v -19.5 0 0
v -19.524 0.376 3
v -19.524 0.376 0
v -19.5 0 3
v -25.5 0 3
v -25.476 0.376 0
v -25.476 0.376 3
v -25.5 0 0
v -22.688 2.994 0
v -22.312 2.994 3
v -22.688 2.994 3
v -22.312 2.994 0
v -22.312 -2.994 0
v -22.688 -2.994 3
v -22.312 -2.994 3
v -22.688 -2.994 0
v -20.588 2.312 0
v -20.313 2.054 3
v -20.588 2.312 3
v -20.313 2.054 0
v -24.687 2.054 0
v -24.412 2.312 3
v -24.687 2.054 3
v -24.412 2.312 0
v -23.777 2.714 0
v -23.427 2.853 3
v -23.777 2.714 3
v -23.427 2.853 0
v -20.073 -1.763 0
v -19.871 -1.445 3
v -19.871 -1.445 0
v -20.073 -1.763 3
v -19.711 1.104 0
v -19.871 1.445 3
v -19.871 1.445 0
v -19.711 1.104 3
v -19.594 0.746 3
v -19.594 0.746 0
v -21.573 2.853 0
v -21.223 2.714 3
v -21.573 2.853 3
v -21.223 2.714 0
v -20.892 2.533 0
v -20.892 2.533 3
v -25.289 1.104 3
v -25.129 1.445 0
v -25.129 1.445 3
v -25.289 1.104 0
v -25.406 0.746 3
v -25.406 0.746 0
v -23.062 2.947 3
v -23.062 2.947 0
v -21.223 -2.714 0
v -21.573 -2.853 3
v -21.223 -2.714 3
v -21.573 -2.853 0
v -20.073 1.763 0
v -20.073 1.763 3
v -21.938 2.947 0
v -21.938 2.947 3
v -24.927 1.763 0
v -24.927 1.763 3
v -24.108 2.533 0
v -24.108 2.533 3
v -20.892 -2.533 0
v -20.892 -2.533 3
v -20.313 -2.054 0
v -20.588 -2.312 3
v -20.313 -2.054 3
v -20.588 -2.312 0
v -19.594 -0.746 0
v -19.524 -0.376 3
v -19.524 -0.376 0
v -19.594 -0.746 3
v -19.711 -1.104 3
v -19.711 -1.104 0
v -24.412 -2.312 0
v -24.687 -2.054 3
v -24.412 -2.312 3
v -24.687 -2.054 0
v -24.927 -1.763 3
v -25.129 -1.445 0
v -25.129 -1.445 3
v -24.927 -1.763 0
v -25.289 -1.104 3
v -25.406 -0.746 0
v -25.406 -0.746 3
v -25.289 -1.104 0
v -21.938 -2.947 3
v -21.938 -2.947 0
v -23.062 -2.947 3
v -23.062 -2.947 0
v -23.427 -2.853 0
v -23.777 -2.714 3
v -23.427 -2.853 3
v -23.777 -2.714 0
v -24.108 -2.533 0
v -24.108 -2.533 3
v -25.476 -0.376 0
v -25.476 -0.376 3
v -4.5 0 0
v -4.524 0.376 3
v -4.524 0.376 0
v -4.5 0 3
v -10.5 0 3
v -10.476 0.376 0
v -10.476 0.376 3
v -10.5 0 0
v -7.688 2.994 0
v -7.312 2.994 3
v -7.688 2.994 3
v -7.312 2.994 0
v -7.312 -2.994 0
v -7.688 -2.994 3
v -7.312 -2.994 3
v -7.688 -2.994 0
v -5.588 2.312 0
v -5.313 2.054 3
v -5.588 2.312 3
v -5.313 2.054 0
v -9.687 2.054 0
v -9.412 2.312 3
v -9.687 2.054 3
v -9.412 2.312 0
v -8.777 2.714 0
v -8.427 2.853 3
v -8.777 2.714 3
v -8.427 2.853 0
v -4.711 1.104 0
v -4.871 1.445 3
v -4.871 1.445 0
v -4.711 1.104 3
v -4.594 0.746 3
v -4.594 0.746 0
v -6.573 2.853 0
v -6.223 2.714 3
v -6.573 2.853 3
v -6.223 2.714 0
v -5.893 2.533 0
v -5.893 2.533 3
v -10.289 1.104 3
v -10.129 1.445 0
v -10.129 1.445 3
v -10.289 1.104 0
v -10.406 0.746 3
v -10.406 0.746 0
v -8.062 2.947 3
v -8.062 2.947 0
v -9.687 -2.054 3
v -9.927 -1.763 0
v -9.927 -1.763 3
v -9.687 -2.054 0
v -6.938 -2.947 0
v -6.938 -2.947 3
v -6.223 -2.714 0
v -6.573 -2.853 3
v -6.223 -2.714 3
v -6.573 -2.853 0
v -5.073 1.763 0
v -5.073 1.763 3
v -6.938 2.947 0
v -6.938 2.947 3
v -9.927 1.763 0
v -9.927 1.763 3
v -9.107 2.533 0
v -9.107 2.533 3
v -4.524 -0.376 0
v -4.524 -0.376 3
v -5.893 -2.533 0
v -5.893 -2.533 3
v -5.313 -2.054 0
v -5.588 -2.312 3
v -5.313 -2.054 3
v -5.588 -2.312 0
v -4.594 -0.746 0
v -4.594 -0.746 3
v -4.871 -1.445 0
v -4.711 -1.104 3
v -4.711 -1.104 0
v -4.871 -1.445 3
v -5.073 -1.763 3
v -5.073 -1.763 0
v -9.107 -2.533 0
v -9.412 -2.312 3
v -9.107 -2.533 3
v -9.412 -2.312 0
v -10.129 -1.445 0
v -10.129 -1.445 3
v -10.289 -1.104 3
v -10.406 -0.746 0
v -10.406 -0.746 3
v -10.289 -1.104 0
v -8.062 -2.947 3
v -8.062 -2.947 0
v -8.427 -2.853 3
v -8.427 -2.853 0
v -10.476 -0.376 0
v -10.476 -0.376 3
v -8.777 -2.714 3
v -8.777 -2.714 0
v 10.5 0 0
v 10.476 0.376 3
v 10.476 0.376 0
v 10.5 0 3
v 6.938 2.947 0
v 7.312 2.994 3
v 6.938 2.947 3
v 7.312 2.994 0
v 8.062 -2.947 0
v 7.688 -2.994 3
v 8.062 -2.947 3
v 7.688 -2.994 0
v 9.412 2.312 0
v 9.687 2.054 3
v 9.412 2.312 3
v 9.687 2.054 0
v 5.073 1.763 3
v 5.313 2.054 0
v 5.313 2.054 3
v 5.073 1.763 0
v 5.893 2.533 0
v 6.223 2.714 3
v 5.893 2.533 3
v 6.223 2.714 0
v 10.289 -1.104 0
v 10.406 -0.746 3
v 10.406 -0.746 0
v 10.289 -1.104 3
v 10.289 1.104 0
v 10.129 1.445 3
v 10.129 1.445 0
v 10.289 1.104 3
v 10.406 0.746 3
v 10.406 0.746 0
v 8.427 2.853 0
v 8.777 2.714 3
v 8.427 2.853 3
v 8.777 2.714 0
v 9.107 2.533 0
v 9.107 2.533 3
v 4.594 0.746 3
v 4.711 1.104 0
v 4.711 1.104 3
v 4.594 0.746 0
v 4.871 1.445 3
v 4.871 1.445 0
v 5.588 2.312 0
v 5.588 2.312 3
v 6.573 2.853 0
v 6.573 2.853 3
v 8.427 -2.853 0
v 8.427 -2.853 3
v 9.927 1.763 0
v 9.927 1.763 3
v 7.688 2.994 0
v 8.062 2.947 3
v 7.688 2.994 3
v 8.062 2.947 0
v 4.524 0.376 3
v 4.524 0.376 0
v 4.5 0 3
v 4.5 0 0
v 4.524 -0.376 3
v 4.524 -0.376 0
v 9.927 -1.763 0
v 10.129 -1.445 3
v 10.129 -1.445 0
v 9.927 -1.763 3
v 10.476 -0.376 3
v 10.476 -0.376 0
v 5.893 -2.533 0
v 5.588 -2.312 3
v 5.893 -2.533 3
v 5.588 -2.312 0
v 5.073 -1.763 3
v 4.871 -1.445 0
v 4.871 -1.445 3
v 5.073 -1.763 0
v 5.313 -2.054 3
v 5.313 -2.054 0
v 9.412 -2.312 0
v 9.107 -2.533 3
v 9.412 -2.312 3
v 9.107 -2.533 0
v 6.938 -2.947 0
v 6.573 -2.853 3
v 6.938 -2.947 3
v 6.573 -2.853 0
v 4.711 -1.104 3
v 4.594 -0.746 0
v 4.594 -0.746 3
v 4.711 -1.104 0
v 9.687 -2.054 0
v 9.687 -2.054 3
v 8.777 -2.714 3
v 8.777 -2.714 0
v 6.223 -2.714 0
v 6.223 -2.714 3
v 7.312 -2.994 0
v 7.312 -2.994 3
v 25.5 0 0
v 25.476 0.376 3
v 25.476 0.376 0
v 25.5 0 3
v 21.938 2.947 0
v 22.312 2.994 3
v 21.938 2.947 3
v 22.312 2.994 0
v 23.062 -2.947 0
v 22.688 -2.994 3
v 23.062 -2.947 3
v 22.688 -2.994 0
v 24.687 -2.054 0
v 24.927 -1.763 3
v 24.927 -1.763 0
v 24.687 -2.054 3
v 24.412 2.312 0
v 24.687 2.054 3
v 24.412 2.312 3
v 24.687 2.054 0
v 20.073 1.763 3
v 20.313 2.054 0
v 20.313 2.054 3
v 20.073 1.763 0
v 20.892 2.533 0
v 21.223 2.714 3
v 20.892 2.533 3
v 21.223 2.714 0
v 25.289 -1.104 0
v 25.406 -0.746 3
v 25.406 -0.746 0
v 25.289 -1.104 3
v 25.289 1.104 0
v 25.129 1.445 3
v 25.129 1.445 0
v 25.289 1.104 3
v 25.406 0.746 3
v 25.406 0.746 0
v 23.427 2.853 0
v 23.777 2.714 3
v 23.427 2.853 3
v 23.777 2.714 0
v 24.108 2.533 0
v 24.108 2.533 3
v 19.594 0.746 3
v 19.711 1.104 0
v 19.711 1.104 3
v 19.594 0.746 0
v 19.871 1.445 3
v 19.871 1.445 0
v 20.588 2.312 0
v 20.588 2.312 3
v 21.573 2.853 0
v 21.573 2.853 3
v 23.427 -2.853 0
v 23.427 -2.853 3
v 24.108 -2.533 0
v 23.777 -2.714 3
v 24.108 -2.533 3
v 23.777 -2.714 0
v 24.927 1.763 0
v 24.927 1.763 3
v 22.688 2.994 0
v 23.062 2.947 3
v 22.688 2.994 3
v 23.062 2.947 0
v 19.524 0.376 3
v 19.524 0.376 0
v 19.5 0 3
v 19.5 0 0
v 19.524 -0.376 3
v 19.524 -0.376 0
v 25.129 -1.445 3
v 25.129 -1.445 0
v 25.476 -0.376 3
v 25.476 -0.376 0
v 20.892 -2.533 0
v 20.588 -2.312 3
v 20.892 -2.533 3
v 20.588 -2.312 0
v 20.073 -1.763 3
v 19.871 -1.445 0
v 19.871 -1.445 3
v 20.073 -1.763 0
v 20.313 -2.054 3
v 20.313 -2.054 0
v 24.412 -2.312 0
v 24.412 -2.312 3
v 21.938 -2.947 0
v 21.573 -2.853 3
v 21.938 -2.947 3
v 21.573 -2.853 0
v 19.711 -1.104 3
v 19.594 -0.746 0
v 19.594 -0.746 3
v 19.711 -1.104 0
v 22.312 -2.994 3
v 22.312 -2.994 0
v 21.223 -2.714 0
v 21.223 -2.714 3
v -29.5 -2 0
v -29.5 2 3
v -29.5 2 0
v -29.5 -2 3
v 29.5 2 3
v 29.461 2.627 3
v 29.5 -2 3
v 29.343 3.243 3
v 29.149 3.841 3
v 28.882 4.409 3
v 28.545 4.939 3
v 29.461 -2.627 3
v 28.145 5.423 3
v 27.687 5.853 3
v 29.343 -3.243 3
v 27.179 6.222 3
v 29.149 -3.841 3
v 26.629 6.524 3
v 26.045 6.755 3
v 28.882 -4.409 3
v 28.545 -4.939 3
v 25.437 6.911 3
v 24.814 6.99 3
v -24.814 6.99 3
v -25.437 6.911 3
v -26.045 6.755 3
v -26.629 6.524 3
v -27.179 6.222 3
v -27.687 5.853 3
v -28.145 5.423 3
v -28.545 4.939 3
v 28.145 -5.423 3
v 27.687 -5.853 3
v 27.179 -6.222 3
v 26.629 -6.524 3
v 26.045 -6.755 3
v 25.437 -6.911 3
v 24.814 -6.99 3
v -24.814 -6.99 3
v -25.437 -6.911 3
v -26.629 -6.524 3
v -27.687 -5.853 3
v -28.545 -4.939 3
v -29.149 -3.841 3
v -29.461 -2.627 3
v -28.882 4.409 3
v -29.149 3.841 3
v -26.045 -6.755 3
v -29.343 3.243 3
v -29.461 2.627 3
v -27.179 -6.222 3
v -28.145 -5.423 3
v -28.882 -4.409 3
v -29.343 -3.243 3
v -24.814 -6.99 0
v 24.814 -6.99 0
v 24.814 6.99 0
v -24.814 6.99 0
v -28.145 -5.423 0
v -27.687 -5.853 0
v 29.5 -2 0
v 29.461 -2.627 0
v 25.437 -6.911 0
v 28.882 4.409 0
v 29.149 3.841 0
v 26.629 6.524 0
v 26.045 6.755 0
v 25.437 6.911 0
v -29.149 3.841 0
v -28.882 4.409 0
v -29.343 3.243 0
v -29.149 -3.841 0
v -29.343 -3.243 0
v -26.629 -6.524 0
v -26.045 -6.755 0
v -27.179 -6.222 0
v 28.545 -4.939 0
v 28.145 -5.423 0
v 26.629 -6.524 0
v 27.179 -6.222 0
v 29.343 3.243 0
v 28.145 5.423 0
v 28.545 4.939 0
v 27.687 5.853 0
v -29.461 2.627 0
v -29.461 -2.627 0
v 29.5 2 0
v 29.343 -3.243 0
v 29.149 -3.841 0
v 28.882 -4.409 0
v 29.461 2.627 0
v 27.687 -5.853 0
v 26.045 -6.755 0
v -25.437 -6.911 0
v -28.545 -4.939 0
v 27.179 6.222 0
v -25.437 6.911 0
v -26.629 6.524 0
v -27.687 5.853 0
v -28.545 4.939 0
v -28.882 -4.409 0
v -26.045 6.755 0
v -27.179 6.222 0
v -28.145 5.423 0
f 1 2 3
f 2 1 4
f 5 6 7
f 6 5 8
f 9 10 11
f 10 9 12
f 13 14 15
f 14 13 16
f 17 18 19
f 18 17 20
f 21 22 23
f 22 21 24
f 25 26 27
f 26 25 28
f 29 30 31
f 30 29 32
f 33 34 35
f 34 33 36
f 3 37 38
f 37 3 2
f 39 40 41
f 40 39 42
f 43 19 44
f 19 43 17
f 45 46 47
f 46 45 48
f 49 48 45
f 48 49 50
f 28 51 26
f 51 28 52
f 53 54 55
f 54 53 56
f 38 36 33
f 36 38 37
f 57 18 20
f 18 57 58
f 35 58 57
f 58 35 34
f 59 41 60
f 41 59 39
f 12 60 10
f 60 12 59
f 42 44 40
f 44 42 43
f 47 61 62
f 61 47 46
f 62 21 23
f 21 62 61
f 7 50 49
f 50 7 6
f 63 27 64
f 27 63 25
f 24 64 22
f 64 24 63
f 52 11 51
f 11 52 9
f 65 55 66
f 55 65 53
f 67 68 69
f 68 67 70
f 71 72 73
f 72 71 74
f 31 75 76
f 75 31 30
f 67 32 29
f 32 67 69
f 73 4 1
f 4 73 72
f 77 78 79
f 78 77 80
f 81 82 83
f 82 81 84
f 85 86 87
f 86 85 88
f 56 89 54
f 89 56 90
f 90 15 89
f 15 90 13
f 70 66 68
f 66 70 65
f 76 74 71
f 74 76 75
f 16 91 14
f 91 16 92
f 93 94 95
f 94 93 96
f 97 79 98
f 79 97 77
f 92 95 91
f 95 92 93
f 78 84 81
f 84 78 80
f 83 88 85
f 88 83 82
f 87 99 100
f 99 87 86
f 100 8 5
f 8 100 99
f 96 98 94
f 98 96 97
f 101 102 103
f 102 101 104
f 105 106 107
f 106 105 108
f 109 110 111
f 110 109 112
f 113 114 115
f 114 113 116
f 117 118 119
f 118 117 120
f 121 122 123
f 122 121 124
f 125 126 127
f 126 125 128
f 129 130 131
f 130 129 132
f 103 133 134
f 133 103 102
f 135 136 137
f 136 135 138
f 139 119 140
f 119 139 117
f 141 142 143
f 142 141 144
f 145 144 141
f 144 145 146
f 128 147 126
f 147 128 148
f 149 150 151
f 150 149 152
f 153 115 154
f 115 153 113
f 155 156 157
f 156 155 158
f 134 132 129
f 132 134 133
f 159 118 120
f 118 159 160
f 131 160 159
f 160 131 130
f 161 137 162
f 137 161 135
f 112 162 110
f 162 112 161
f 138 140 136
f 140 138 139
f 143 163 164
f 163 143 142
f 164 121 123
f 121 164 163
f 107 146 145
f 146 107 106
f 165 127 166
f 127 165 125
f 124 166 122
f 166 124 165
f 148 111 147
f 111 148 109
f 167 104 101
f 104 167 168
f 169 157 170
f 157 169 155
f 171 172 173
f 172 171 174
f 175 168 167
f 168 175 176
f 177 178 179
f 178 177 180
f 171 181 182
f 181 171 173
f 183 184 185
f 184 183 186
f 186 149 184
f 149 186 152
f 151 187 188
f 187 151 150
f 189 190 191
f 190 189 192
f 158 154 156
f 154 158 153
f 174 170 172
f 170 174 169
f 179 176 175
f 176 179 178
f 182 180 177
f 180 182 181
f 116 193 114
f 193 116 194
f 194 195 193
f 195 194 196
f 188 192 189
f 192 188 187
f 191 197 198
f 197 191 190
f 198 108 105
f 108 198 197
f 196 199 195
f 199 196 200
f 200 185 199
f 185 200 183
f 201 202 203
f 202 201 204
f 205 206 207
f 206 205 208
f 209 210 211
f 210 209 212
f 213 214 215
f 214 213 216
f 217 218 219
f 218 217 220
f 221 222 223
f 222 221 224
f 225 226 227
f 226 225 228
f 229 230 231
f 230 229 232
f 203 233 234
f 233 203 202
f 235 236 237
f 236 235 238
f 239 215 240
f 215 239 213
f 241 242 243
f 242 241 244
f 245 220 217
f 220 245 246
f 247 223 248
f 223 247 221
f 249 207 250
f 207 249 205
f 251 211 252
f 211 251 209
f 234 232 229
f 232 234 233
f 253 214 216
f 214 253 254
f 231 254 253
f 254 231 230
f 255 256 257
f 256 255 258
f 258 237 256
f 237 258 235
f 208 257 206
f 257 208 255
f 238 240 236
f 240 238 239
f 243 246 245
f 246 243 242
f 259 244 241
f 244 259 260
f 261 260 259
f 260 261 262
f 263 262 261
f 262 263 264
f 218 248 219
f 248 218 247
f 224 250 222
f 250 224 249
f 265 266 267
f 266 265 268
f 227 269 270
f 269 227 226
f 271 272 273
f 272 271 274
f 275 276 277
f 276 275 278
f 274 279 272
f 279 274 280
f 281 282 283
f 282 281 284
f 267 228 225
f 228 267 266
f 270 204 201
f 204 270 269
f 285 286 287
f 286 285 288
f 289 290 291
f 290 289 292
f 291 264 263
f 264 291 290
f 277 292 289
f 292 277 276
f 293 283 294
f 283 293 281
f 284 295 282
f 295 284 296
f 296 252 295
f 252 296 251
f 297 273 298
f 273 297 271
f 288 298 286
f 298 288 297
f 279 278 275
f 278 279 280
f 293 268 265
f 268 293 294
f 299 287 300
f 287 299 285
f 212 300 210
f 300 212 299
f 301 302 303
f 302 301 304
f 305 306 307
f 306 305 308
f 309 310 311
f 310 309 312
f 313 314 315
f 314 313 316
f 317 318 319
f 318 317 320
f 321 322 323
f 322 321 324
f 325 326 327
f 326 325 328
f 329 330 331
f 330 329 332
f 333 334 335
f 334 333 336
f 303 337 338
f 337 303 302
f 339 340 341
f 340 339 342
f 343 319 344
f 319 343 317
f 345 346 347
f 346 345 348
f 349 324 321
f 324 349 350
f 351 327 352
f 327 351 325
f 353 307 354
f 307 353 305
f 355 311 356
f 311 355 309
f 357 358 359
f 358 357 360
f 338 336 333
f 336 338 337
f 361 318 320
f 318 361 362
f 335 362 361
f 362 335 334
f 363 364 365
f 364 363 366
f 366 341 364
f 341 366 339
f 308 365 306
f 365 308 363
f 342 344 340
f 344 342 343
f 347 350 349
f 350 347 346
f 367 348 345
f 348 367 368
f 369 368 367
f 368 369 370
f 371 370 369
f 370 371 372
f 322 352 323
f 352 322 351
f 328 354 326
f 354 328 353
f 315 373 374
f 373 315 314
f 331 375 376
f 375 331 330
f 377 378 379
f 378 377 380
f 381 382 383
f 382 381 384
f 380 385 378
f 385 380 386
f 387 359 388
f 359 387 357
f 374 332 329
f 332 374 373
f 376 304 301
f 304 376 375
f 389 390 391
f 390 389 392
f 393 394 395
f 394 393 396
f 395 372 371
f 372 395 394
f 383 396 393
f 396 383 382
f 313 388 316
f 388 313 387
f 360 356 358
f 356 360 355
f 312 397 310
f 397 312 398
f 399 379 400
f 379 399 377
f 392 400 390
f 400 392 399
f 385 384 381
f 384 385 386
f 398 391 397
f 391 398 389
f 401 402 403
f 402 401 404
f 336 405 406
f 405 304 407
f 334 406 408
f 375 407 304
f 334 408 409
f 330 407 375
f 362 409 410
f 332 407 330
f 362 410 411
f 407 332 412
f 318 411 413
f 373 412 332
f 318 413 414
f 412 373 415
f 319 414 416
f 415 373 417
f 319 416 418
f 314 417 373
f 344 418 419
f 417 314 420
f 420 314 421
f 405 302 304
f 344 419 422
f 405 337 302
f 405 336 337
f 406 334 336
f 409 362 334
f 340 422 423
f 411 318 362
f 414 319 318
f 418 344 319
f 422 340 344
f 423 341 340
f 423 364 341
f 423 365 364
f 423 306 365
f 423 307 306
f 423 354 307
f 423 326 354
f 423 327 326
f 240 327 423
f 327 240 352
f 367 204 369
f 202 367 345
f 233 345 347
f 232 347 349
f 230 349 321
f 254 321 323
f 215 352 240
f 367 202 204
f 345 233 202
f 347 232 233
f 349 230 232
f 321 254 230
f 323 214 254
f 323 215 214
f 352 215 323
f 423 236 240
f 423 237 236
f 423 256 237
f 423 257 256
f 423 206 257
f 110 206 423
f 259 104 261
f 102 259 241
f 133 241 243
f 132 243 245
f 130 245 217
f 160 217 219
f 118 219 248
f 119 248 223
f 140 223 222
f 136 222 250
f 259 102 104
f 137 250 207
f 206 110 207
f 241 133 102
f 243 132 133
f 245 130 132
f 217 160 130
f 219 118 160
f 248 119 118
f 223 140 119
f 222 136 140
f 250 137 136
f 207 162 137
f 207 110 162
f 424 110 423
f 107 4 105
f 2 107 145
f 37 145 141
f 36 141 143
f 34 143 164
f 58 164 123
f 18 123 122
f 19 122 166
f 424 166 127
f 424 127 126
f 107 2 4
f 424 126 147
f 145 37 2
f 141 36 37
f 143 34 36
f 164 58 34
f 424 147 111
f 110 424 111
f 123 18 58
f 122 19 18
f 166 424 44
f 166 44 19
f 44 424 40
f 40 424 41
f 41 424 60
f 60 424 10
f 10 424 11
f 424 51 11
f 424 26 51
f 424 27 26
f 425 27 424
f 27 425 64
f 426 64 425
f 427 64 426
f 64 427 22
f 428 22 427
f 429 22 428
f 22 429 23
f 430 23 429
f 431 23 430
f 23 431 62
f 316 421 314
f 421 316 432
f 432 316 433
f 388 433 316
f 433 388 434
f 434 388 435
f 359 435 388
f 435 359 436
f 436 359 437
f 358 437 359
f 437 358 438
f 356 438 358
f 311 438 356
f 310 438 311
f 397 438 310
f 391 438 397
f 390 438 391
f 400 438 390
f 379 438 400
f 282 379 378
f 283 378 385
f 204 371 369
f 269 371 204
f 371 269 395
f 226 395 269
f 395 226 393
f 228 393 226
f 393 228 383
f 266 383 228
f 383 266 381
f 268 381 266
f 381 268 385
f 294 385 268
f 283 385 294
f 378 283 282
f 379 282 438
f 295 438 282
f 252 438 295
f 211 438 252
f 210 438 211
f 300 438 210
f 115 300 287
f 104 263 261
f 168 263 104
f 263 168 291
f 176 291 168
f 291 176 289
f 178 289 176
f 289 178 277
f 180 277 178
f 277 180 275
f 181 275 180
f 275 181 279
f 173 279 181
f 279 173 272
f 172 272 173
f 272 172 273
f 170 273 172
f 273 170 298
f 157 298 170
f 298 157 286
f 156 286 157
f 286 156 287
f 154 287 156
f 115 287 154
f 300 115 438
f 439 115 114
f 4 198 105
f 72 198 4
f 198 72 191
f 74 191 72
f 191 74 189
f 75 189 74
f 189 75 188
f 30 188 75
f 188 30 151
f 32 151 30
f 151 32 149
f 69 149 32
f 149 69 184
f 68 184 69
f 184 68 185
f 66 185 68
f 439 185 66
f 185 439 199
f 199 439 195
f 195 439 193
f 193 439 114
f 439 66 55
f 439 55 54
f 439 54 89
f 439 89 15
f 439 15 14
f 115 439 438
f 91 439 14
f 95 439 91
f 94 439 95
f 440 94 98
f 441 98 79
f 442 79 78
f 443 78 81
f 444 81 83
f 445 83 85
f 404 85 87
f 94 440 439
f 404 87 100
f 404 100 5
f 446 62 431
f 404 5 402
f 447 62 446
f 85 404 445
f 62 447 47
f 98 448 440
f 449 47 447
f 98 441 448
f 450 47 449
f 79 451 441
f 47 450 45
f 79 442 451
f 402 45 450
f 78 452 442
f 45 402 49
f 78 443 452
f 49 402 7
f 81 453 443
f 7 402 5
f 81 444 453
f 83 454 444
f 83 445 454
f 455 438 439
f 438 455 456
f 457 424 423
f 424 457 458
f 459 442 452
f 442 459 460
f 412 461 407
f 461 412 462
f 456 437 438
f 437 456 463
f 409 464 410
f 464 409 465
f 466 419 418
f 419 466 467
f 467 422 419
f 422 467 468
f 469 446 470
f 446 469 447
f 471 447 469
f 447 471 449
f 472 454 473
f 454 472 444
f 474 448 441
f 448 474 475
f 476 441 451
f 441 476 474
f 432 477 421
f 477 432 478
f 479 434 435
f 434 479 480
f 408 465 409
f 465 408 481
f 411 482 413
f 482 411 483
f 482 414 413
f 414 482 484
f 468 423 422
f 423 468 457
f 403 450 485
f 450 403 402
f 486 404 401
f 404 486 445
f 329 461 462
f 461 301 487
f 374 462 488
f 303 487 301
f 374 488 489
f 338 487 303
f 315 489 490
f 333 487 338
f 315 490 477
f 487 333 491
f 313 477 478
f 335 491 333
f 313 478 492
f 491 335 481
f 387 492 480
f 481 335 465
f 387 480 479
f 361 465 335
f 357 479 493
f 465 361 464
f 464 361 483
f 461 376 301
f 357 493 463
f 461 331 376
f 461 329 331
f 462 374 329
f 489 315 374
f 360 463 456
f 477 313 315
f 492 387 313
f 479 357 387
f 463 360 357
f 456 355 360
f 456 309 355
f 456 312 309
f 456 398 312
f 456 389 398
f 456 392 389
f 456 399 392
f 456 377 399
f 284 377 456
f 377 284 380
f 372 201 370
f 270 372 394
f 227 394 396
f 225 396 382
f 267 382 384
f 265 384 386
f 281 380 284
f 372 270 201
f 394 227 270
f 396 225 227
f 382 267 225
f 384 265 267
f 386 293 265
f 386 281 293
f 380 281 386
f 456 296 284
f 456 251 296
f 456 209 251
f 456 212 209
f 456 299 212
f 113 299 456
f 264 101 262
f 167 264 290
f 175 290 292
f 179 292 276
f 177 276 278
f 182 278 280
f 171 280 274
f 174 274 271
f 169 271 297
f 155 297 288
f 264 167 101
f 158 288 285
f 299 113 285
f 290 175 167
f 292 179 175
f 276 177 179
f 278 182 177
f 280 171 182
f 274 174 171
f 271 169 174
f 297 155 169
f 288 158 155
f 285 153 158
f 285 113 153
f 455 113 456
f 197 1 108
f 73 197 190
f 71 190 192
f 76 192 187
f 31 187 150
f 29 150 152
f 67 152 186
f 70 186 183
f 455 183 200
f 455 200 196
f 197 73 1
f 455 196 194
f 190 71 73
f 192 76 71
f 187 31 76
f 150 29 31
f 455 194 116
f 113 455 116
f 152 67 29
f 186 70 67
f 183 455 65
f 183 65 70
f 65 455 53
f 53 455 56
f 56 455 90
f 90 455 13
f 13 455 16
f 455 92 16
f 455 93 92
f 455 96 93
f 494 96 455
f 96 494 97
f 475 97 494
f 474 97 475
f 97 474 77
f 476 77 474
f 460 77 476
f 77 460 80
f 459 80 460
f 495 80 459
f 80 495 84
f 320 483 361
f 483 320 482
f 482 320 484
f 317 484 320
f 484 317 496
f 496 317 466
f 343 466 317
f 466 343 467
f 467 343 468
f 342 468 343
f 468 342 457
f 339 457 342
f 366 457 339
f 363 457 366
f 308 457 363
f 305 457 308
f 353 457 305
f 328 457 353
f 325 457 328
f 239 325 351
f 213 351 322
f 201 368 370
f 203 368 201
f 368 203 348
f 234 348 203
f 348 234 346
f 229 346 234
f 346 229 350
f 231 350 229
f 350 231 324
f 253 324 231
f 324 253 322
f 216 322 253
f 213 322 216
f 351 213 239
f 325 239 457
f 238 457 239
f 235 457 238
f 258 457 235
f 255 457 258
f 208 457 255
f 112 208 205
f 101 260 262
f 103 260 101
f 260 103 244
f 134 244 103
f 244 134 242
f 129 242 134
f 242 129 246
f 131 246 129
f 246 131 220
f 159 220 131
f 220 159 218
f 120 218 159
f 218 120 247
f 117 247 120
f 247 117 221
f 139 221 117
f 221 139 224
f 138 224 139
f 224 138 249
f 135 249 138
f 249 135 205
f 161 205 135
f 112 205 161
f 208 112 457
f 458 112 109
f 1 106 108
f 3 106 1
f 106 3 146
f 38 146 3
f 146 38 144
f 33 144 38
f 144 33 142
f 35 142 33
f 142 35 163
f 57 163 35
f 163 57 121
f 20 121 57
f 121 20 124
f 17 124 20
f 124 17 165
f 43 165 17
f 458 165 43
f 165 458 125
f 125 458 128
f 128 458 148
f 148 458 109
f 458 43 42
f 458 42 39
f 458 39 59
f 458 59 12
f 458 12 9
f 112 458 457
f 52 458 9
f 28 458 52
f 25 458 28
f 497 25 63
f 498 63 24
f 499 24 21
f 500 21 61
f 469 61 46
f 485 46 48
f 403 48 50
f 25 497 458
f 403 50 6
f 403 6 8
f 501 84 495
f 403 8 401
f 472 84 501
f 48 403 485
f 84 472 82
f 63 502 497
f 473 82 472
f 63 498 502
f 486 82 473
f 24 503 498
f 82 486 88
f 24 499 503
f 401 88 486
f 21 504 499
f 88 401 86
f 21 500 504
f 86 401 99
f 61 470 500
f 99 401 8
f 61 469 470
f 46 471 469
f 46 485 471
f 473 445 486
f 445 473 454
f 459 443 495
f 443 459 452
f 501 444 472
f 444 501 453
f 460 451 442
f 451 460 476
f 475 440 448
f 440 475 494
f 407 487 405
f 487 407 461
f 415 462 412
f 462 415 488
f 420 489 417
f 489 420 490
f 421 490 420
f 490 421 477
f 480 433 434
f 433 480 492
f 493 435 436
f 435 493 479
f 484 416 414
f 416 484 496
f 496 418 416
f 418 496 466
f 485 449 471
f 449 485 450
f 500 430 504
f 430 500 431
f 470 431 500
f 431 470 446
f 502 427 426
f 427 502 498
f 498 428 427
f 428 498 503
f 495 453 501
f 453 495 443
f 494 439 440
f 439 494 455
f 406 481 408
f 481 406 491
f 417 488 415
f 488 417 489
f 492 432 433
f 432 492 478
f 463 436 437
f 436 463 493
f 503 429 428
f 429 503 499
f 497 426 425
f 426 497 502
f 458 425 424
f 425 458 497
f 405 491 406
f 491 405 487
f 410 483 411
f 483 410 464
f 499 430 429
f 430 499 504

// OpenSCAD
// Generated by SolidPython 1.1.3 on 2023-03-13 21:42:52
$fn = 50;


difference() {
	union() {
		translate(v = [0, 0, 0]) {
			rotate(a = [0, 0, 0]) {
				hull() {
					translate(v = [-24.5000000000, 2.0000000000, 0]) {
						rotate(a = [0, 0, 0]) {
							translate(v = [0, 0, 0]) {
								rotate(a = [0, 0, 0]) {
									cylinder(h = 3, r = 5);
								}
							}
						}
					}
					translate(v = [24.5000000000, 2.0000000000, 0]) {
						rotate(a = [0, 0, 0]) {
							translate(v = [0, 0, 0]) {
								rotate(a = [0, 0, 0]) {
									cylinder(h = 3, r = 5);
								}
							}
						}
					}
					translate(v = [-24.5000000000, -2.0000000000, 0]) {
						rotate(a = [0, 0, 0]) {
							translate(v = [0, 0, 0]) {
								rotate(a = [0, 0, 0]) {
									cylinder(h = 3, r = 5);
								}
							}
						}
					}
					translate(v = [24.5000000000, -2.0000000000, 0]) {
						rotate(a = [0, 0, 0]) {
							translate(v = [0, 0, 0]) {
								rotate(a = [0, 0, 0]) {
									cylinder(h = 3, r = 5);
								}
							}
						}
					}
				}
			}
		}
	}
	union() {
		translate(v = [-22.5000000000, 0.0000000000, 0]) {
			rotate(a = [0, 0, 0]) {
				translate(v = [0, 0, -50]) {
					rotate(a = [0, 0, 0]) {
						cylinder(h = 100, r = 3.0000000000);
					}
				}
			}
		}
		translate(v = [-7.5000000000, 0.0000000000, 0]) {
			rotate(a = [0, 0, 0]) {
				translate(v = [0, 0, -50]) {
					rotate(a = [0, 0, 0]) {
						cylinder(h = 100, r = 3.0000000000);
					}
				}
			}
		}
		translate(v = [7.5000000000, 0.0000000000, 0]) {
			rotate(a = [0, 0, 0]) {
				translate(v = [0, 0, -50]) {
					rotate(a = [0, 0, 0]) {
						cylinder(h = 100, r = 3.0000000000);
					}
				}
			}
		}
		translate(v = [22.5000000000, 0.0000000000, 0]) {
			rotate(a = [0, 0, 0]) {
				translate(v = [0, 0, -50]) {
					rotate(a = [0, 0, 0]) {
						cylinder(h = 100, r = 3.0000000000);
					}
				}
			}
		}
	}
}
/***********************************************
*********      SolidPython code:      **********
************************************************
 
from solid import *
import os
import subprocess

import oomB

import opsc_library_gen

mode = "laser"
#mode = "3d_print"

defined_objects = {}

radius_dict = {}
countersunk_dict = {}


def set_mode(m):
    global mode
    mode = m
    radius_dict['M6'] = 6.5/2
    radius_dict['M3'] = 3.3/2
    if mode == "laser":
        radius_dict['M6'] = 6/2
        radius_dict['M3'] = 3/2

    countersunk_dict['M3'] = {}
    countersunk_dict['M3']['little_rad'] = radius_dict['M3']
    countersunk_dict['M3']['big_rad'] = (5.5+0.6)/2
    if mode == "laser":
        countersunk_dict['M3']['big_rad'] = (4.75+0.6)/2
        countersunk_dict['M3']['little_rad'] = (4.75+0.6)/2

    countersunk_dict['M3']['height'] = 1.7


def opsc_make_object(filename, objects, save_type="none",resolution=50, layers = 1, tilediff = 200, mode="laser", overwrite=True):
    if overwrite or not os.path.exists(filename):
        set_mode(mode)
        save_type = save_type.lower()
        os.makedirs(os.path.dirname(filename), exist_ok=True)
        final_object = opsc_get_object(objects, mode = mode)
        # Save the final object to the specified filename    
        scad_render_to_file(final_object, filename, file_header='$fn = %s;' % resolution, include_orig_code=True)
        if save_type == "all":
            saveToAll(filename)
        elif save_type == "dxf":
            saveToDxf(filename)
        if mode == "laser":
            filename_laser = filename.replace(".scad","-flat.scad")
            scad_render_to_file(getLaser(final_object, layers=layers, tilediff=tilediff), filename_laser, file_header='$fn = %s;' % resolution, include_orig_code=True)
            if save_type == "all":
                saveToAll(filename_laser)
            elif save_type == "dxf":
                saveToDxf(filename_laser)


def opsc_get_object(objects, mode = "laser"):
    # Create the solidpython objects only include the positive objects and if they don't have inclusion or their inclusion is either all or mode
    # Initialize an empty list to store the results
    positive_objects = []

    # Iterate over the "objects" list
    for obj in objects:
        # Check if the current object has a "type" key with a value of "positive"
        if obj['type'] == 'positive':
            # Check if the current object has an "inclusion" key and its value matches "mode",
            # or if the current object does not have an "inclusion" key at all
            if not 'inclusion' in obj or obj['inclusion'] == "all" or obj['inclusion'] == mode:
                # Call the "get_opsc_item" function with the current object as an argument
                opsc_item = get_opsc_item(obj)
                # Add the result to the "positive_objects" list
                positive_objects.append(opsc_item)
# Initialize an empty list to store the results
    negative_objects = []

    # Iterate over the "objects" list
    for obj in objects:
        # Check if the current object has a "type" key with a value of "negative"
        if obj['type'] == 'negative':
            # Check if the current object has an "inclusion" key and its value matches "mode",
            # or if the current object does not have an "inclusion" key at all
            if not 'inclusion' in obj or obj['inclusion'] == "all" or obj['inclusion'] == mode:
                # Call the "get_opsc_item" function with the current object as an argument
                opsc_item = get_opsc_item(obj)
                # Add the result to the "negative_objects" list
                negative_objects.append(opsc_item)
    
    #positive_objects = [get_opsc_item(obj) for obj in objects if obj['type'] == 'positive']
    #negative_objects = [get_opsc_item(obj) for obj in objects if obj['type'] == 'negative']
    # Union the positive objects
    positive_object = union()(*positive_objects)
    # Union the negative objects
    negative_object = union()(*negative_objects)
    # Create the final object by subtracting the negative objects from the positive objects
    return difference()(positive_object, negative_object)

def get_opsc_item(params):
    # A dictionary to map radius string values to numerical values
    #radius_dict = {'small': 5, 'medium': 10, 'large': 15}
    # An array of function names for basic shapes
    basic_shapes = ['cube', 'sphere', 'cylinder']
    
    # An array of function names for other shapes
    other_shapes = ['hole', 'slot', 'rounded_rectangle', 'countersunk', 'polyg']
    


    # Convert radius to r if present, and remove radius from the params dictionary
    if 'radius' in params:
        if isinstance(params['radius'], str):
            # Use the radius_dict to map the radius string value to a numerical value
            params['r'] = radius_dict[params['radius']]
        else:
            params['r'] = params['radius']
        del params['radius']
    

    # Check if the object type is a basic shape
    if params['shape'] in basic_shapes:
        # Remove shape and unexpected dictionary values
        allowed_keys = {'size', 'r', 'r1', 'r2', 'd', 'h', 'rw', 'rh', 'dw', 'dh'}
        shape_params = {k: v for k, v in params.items() if k in allowed_keys}

        #params['m'] = "#"
        ###split for adding modifier
        try:
            m = params['m']
            func = globals()[params['shape']]
            return_value = get_opsc_transform(params,func(**shape_params))
            return_value = (return_value).set_modifier(m)
            return return_value
        except KeyError as e:
            return get_opsc_transform(params,globals()[params['shape']](**shape_params))
        
    elif params['shape'] == 'polygon':
        # Remove shape and unexpected dictionary values
        h  = params['height']
        allowed_keys = {'points'}
        shape_params = {k: v for k, v in params.items() if k in allowed_keys}

        # Call the corresponding function for the shape parameter, using ** notation to pass the shape_params dictionary as keyword arguments
        params["rot"] = [0,0,0]        
        try:
            m = params['m']
            func = globals()[params['shape']]
            return_value = get_opsc_transform(params,linear_extrude(h)(globals()[params['shape']](**shape_params)))
            return_value = (return_value).set_modifier(m)
            return return_value
        except KeyError as e:
            return_value = get_opsc_transform(params,linear_extrude(h)(globals()[params['shape']](**shape_params)))
            return_value = (return_value)
            return return_value


    # If the object type is not a basic shape, check if it's a defined object or one of the other shapes
    elif params['shape'] in other_shapes:
        # Call the corresponding function for the shape parameter, passing the params dictionary as an argument
        p2 = copy.deepcopy(params)
        p2["pos"] = [0,0,0]
        return get_opsc_transform(params,globals()[params['shape']](p2))
    
    # If the object is not a basic shape or a defined object, try to import it from a .scad file
    else:
        obj = defined_objects[params['shape']]
        return get_opsc_transform(params,obj)

def get_opsc_transform(params, solid_obj):
    # Rotate the object based on the 'rot' field in the params dictionary, or the 'rotX', 'rotY', and 'rotZ' fields if 'rot' is not present
    rot = params.get('rot', [])
    if rot:
        rotX, rotY, rotZ = rot
    else:
        rotX = params.get('rotX', 0)
        rotY = params.get('rotY', 0)
        rotZ = params.get('rotZ', 0)
    solid_obj = rotate([rotX, rotY, rotZ])(solid_obj)

    # Translate the object based on the 'pos' field in the params dictionary, or the 'x', 'y', and 'z' fields if 'pos' is not present
    pos = params.get('pos', [])
    if pos:
        x, y, z = pos
    else:
        x = params.get('x', 0)
        y = params.get('y', 0)
        z = params.get('z', 0)
    solid_obj = translate([x, y, z])(solid_obj)
    return solid_obj


import random

def opsc_easy_array(type, shape, repeats, pos_start, shift_arr, **kwargs):
    for i in range(0,3):
        repeats.append(1)
        pos_start.append(0)
        shift_arr.append(0)
    return_objects = []

    for x in range(0,repeats[0]):
        for y in range(0,repeats[1]):
            for z in range(0,repeats[2]):
                return_objects.append(opsc_easy(type, shape, pos=[pos_start[0]+x*shift_arr[0],pos_start[1]+y*shift_arr[1],pos_start[2]+z*shift_arr[2]], **kwargs))
    return return_objects                



def opsc_easy(type, shape, **kwargs):
    obj = {
        'type': type,
        'shape': shape
    }
    for param in ['size', 'r', 'r1', 'r2', 'd', 'h', 'rw', 'rh', 'dw', 'dh', 'pos', 'x', 'y', 'z', 'rot', 'rotX', 'rotY', 'rotZ', "w", "inclusion", 'sides', 'height', "m"]:
        if param in kwargs:
            obj[param] = kwargs[param]
    return obj

def hole(params):
    p2 = copy.deepcopy(params)  
    # Check if the radius is a string and replace it with the corresponding value from the dictionary
    if isinstance(p2['r'], str):
        p2['r'] = radius_dict[p2['r']]
    
    # Set the height to 100 if not specified
    if 'h' not in p2:
        p2['h'] = 100
        p2["pos"] = [0,0,-50]
    p2["center"] = True
    # Create the cylinder object
    p2["shape"] = "cylinder"
    p2["type"] = "positive"

    return get_opsc_item(p2)

import copy

def countersunk(params):
    p2 = copy.deepcopy(params)
    counter_rad = p2['r']
    p2['r'] = radius_dict[p2['r']]
    hp = copy.deepcopy(p2)
    hp["type"] = "positive"
    hp["shape"] = "hole"
    del hp["rot"]
    hol = get_opsc_item(hp)
    
    cp = copy.deepcopy(p2)
    cp["h"] = countersunk_dict[counter_rad]["height"]
    cp["r2"] = countersunk_dict[counter_rad]["little_rad"]
    cp["r1"] = countersunk_dict[counter_rad]["big_rad"]
    del cp["r"]
    del cp["rot"]
    cp["type"] = "positive"
    cp["shape"] = "cylinder"
    cp["pos"] = [0,0,0]

    top = get_opsc_item(cp)
    return union()(hol,top)



def slot(params):  
    p2 = copy.deepcopy(params) 
    if isinstance(p2['r'], str):
        p2['r'] = radius_dict[p2['r']]
    p2["type"] = "positive"
    p2["shape"] = "hole"
    del p2["rot"]
    p2["pos"] = [0,0,0]
    left = copy.deepcopy(p2)
    right = copy.deepcopy(p2)
    left["pos"][0] = p2["w"] / 2 - p2["r"] 
    
    right["pos"][0] = -p2["w"] / 2 + p2["r"] 
    pass
    leftObj = get_opsc_item(left)
    rightObj = get_opsc_item(right)
    return hull()(leftObj, rightObj)

def rounded_rectangle(params):   
    p2 = copy.deepcopy(params) 
    p2["h"] = p2["size"][2]
    p2["pos"] = p2.get("pos", [0, 0, 0]) 
    p2["type"] = "positive"
    p2["shape"] = "hole"
    p2["pos"] = [0,0,0]
    
    if 'rot' in p2:
        del p2["rot"]   
    if 'r' not in p2:
        p2["r"] = 5 
    tl = copy.deepcopy(p2)
    tr = copy.deepcopy(p2)
    bl = copy.deepcopy(p2)
    br = copy.deepcopy(p2)
    tl["pos"][0] = -(p2["size"][0] - p2["r"]*2)/2
    tl["pos"][1] = (p2["size"][1] - p2["r"]*2)/2
    tr["pos"][0] = (p2["size"][0] - p2["r"]*2)/2
    tr["pos"][1] = (p2["size"][1] - p2["r"]*2)/2
    bl["pos"][0] = -(p2["size"][0] - p2["r"]*2)/2
    bl["pos"][1] = -(p2["size"][1] - p2["r"]*2)/2
    br["pos"][0] = (p2["size"][0] - p2["r"]*2)/2
    br["pos"][1] = -(p2["size"][1] - p2["r"]*2)/2
    del tl["size"]
    del tr["size"]
    del bl["size"]
    del br["size"]
    tlo = get_opsc_item(tl)
    tro = get_opsc_item(tr)
    blo = get_opsc_item(bl)
    bro = get_opsc_item(br)    
    return hull()(tlo, tro, blo, bro)



def polyg(params):
    p2 = copy.deepcopy(params) 
    p2["type"] = "positive"
    p2["shape"] = "polygon"
    p2["pos"] = [0,0,0]
    sides = p2["sides"]
    radius = p2["r"]    
    angles = [i * 360 / sides for i in range(sides)]
    points = regular_polygon(sides, radius)
    
    p2["points"] = points
    return get_opsc_item(p2)

import math

def regular_polygon(num_sides, radius):
    # Calculate the angle between each side
    angle = 2 * math.pi / num_sides

    # Calculate the points of the polygon
    points = []
    for i in range(num_sides):
        x = radius * math.cos(i * angle)
        y = radius * math.sin(i * angle)
        points.append((x, y))
    return points

def import_scad_object(filename):
    # Import the .scad file and convert it to a solidpython object
    #filename = "parts"
    obj = import_scad(filename)
    return obj.main()



import os
import solid as solidpython

# A dictionary to store the defined objects


def load_scad_objects():
    opsc_library_gen.gen_library(defined_objects)

import random

def test(num_objects):
    objects = []
    for i in range(num_objects):
        # Choose a random shape
        #shape = random.choice(['cube', 'sphere', 'cylinder', 'hole', 'slot', "rounded_rectangle"])
        shape = random.choice(["rounded_rectangle"])

        # Choose a random type
        type = random.choice(['positive', 'negative'])
        
        # Create an empty object dictionary
        obj = {'shape': shape, 'type': type}
        
        # Set shape-specific parameters
        if obj['shape'] in ['cube']:
            obj['size'] =  [random.uniform(5, 15), random.uniform(5, 15), random.uniform(5, 15)]
        if obj['shape'] in ['rounded_rectangle']:
            obj['size'] =  [random.uniform(5, 15), random.uniform(5, 15), random.uniform(5, 15)]
            obj['r'] = random.uniform(0.5, 5)
        elif obj['shape'] == 'sphere':
            obj['r'] = random.uniform(5, 15)
        elif obj['shape'] in ['cylinder', 'hole']:
            obj['r'] = random.uniform(0.5, 5)
            obj['h'] = random.uniform(5, 15)
        elif obj['shape'] == 'slot':
            obj['r'] = random.uniform(0.5, 5)
            obj['h'] = random.uniform(5, 15)
            obj['w'] = random.uniform(5, 15)
        
        # Set a random position and rotation
        obj['pos'] = [random.uniform(-20, 20), random.uniform(-20, 20), random.uniform(-20, 20)]
        obj['rot'] = [random.uniform(-180, 180), random.uniform(-180, 180), random.uniform(-180, 180)]
        
        # Add the object to the list
        objects.append(obj)
    return objects

####### old file saving
def saveToAll(fileIn):
    saveToStl(fileIn)
    saveToDxf(fileIn)
    saveToPng(fileIn)
    saveToSvg(fileIn)

def saveToDxf(fileIn, fileOut="", copy_to_laser=True):
    if fileOut == "":
        fileOut = fileIn.replace(".scad",".dxf")
    saveToFile(fileIn, fileOut)


    
def saveToPng(fileIn, fileOut="",extra="--render"):
    if fileOut == "":
        fileOut = fileIn.replace(".scad",".png")
    saveToFile(fileIn, fileOut)

def saveToStl(fileIn, fileOut=""):
    if fileOut == "":
        fileOut = fileIn.replace(".scad",".stl")
    saveToFile(fileIn, fileOut)
    
def saveToSvg(fileIn, fileOut=""):
    if fileOut == "":
        fileOut = fileIn.replace(".scad",".svg")
    saveToFile(fileIn, fileOut)

def saveToFile(fileIn, fileOut,extra=""):
    #extra = extra + " --colorscheme Tomorrow"

    launchStr = 'openscad -o "' + fileOut + '"' + extra + ' "' + fileIn + '"'
    if ".png" in fileOut:
        launchStr = launchStr + " --render"
    print("            saveToFile launch string: " + launchStr)
    subprocess.run(launchStr)
    x=0

def getLaser(final_object,start=1.5,layers=1,thickness=3,tilediff=200):
        rv= []

        for x in range(layers):
            rv.append(translate([0,x*tilediff,0])(
                    projection()(
                        intersection()(translate([-500,-500,start+x*thickness])(cube(size=[1000,1000,0.1])),
                            final_object
                        )
                    )
            )
            )
            
        return union()(rv)

set_mode("laser")
load_scad_objects() 
 
************************************************/
